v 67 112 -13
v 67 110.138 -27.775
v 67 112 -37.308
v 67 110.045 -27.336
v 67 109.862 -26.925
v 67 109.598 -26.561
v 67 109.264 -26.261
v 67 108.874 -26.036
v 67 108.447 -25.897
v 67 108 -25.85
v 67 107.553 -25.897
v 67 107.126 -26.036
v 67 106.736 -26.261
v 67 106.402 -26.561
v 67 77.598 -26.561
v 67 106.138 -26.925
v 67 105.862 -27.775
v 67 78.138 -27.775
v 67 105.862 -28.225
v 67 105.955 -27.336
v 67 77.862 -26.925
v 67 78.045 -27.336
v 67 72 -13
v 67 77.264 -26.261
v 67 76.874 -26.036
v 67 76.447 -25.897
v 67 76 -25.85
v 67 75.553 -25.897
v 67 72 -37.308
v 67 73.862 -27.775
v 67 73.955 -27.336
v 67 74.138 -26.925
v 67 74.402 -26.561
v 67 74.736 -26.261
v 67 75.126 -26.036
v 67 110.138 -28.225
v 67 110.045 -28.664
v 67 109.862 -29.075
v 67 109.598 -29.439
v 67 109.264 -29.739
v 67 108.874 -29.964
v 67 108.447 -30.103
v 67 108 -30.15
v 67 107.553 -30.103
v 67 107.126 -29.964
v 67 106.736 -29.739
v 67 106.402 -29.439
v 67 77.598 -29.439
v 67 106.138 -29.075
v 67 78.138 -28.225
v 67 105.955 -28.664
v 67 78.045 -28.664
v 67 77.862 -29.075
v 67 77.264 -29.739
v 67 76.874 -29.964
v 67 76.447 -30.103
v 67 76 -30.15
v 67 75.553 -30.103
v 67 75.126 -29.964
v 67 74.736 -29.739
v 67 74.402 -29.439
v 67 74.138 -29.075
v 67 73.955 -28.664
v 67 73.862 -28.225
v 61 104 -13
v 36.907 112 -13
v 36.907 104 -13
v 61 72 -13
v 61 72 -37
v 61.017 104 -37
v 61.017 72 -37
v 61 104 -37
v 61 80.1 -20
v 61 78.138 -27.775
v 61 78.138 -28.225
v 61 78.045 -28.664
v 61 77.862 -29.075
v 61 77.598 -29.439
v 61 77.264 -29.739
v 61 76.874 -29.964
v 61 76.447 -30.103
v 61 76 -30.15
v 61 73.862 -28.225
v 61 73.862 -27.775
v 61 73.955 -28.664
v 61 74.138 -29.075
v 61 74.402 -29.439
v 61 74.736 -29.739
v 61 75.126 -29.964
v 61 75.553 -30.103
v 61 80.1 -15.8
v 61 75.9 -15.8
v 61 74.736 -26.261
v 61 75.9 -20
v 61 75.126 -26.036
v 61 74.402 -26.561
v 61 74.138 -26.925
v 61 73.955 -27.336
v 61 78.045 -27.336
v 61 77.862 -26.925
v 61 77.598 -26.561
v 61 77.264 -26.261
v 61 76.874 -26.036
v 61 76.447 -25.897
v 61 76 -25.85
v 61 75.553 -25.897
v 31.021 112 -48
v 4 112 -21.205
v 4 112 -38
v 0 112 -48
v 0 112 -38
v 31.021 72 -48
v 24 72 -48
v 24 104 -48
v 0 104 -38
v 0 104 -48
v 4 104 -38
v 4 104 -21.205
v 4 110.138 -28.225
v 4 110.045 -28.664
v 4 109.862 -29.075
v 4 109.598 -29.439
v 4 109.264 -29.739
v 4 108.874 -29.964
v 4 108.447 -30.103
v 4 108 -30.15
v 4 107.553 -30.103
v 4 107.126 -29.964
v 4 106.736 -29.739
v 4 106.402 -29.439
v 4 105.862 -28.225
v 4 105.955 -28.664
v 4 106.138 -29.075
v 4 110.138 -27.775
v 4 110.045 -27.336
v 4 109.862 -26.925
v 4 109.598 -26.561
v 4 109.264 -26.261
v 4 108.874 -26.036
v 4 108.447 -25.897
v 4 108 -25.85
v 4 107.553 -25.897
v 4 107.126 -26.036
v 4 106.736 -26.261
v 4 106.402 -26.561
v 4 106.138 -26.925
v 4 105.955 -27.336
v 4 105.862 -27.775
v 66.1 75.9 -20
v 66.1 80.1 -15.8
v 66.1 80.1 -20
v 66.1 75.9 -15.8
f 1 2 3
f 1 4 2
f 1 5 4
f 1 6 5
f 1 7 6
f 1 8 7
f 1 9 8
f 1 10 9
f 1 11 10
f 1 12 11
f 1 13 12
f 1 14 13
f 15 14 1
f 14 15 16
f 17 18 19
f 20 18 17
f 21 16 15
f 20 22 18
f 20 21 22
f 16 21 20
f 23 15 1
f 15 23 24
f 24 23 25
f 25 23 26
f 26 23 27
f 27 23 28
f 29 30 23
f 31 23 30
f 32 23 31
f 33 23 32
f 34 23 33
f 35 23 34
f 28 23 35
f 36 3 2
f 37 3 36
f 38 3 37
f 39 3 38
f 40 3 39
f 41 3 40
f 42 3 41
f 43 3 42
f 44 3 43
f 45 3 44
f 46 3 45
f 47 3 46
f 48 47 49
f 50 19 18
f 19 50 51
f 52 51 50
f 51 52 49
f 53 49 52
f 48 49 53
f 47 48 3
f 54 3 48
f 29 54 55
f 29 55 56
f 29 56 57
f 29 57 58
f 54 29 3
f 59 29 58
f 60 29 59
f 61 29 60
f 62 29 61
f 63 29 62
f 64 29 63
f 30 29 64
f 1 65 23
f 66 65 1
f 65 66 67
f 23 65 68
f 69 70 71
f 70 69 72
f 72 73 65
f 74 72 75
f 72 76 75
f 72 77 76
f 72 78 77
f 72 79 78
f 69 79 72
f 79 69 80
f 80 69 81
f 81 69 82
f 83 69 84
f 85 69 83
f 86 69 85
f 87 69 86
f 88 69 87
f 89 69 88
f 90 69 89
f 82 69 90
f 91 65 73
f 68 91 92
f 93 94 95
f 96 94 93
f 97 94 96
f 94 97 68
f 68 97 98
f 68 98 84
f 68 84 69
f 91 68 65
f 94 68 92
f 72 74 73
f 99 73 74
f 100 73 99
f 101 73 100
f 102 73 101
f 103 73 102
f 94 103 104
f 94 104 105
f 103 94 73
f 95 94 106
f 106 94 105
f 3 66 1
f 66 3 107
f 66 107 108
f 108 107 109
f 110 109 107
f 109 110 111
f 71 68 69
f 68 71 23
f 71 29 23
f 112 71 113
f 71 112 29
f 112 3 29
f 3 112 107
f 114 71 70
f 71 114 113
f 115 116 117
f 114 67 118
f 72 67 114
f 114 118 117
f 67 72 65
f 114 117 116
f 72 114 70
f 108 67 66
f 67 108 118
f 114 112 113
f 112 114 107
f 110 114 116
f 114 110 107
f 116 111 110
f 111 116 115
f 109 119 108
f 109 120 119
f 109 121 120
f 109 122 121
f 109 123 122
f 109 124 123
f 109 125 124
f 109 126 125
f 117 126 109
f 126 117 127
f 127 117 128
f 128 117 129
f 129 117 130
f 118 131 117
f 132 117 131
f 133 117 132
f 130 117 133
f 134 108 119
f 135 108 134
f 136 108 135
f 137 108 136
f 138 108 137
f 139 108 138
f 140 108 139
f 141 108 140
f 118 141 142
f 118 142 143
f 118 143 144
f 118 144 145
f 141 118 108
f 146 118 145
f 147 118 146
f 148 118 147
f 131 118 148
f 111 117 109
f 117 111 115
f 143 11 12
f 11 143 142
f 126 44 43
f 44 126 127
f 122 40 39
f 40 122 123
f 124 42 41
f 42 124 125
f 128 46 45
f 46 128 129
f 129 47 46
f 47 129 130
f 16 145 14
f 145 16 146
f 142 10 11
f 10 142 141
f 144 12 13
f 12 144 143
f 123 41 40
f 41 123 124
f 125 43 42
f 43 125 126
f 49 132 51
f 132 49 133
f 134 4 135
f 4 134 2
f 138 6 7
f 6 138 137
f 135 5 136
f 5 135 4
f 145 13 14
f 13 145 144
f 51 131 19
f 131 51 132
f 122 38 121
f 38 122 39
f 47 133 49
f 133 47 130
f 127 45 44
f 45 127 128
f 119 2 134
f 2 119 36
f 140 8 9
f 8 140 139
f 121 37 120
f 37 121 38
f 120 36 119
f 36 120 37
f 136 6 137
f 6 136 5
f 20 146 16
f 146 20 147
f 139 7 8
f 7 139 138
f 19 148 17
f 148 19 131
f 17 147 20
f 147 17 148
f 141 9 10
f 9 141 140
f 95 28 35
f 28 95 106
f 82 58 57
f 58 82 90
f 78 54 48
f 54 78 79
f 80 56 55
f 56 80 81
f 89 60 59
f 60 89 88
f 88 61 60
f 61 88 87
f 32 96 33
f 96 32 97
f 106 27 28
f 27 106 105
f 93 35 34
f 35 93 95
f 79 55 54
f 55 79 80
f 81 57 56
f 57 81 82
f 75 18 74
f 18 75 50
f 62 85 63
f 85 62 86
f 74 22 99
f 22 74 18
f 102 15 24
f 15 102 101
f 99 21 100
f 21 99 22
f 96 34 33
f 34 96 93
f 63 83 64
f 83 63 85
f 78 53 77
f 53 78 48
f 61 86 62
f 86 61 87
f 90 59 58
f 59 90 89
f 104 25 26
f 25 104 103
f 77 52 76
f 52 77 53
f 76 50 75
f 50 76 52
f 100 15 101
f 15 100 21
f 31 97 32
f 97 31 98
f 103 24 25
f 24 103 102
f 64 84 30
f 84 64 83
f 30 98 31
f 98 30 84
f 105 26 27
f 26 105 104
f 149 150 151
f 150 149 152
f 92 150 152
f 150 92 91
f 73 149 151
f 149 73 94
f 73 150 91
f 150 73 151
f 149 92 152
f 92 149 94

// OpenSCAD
// middle part of guard rail for top middle entry
color ("lavender")
difference() {
union() {
    // vertical front plate
    translate([61,72,-37])
    cube([6,40,24]); 
    
    // angle front plate
    translate([24,72,-48])
    rotate([0,73.45,0])
    cube([2,40,50]);
    
    // right side
    translate([-15,104,-24])
    rotate([0,75,0])
    cube([33.5,8,80]);
    //*/
    
}
    // top clean up
    translate([0,60,-13])
    cube([90,60,30]);
    
    // top angle clean up
    translate([-30,60,0])
    rotate([0,76,0])
    cube([28.8,60,77]);

    // bottom clean up
    translate([0,60,-58])
    cube([90,60,10]);

    // back clean up
    translate([-20,60,-38])
    cube([24,60,60]);

    translate([-20,60,-60])
    cube([20,60,22]);

    // right clean up
    translate([0,112,-60])
    cube([80,20,80]);
    
    // front clean up
    translate([67,60,-40])
    cube([10,60,50]);
    
    /*/ front/bottom angle clean up
    translate([24,71,-40.85])
    rotate([0,67.9,0])
    cube([4,42,50]);
    */
    
    // right hole
    translate([-4,108,-28])
    rotate([0,90,0])
    cylinder(r=2.15,90, $fn=30);
    
    /*/ spot for screw at the end of the hole
    translate([46.7,108,-28])
    rotate([0,90,0])
    cylinder(r=3.7,20, $fn=30);
    */
    
    // left hole
    translate([-4,76,-28])
    rotate([0,90,0])
    cylinder(r=2.15,90, $fn=30);
    
    /*/ left spot for screw at the end of the hole
    translate([46.7,76,-28])
    rotate([0,90,0])
    cylinder(r=3.7,20, $fn=30);
    */
    
    // cubed hole to secure left piece
    translate([60.9,75.9,-20])
    cube([5.2,4.2,4.2]);
}
